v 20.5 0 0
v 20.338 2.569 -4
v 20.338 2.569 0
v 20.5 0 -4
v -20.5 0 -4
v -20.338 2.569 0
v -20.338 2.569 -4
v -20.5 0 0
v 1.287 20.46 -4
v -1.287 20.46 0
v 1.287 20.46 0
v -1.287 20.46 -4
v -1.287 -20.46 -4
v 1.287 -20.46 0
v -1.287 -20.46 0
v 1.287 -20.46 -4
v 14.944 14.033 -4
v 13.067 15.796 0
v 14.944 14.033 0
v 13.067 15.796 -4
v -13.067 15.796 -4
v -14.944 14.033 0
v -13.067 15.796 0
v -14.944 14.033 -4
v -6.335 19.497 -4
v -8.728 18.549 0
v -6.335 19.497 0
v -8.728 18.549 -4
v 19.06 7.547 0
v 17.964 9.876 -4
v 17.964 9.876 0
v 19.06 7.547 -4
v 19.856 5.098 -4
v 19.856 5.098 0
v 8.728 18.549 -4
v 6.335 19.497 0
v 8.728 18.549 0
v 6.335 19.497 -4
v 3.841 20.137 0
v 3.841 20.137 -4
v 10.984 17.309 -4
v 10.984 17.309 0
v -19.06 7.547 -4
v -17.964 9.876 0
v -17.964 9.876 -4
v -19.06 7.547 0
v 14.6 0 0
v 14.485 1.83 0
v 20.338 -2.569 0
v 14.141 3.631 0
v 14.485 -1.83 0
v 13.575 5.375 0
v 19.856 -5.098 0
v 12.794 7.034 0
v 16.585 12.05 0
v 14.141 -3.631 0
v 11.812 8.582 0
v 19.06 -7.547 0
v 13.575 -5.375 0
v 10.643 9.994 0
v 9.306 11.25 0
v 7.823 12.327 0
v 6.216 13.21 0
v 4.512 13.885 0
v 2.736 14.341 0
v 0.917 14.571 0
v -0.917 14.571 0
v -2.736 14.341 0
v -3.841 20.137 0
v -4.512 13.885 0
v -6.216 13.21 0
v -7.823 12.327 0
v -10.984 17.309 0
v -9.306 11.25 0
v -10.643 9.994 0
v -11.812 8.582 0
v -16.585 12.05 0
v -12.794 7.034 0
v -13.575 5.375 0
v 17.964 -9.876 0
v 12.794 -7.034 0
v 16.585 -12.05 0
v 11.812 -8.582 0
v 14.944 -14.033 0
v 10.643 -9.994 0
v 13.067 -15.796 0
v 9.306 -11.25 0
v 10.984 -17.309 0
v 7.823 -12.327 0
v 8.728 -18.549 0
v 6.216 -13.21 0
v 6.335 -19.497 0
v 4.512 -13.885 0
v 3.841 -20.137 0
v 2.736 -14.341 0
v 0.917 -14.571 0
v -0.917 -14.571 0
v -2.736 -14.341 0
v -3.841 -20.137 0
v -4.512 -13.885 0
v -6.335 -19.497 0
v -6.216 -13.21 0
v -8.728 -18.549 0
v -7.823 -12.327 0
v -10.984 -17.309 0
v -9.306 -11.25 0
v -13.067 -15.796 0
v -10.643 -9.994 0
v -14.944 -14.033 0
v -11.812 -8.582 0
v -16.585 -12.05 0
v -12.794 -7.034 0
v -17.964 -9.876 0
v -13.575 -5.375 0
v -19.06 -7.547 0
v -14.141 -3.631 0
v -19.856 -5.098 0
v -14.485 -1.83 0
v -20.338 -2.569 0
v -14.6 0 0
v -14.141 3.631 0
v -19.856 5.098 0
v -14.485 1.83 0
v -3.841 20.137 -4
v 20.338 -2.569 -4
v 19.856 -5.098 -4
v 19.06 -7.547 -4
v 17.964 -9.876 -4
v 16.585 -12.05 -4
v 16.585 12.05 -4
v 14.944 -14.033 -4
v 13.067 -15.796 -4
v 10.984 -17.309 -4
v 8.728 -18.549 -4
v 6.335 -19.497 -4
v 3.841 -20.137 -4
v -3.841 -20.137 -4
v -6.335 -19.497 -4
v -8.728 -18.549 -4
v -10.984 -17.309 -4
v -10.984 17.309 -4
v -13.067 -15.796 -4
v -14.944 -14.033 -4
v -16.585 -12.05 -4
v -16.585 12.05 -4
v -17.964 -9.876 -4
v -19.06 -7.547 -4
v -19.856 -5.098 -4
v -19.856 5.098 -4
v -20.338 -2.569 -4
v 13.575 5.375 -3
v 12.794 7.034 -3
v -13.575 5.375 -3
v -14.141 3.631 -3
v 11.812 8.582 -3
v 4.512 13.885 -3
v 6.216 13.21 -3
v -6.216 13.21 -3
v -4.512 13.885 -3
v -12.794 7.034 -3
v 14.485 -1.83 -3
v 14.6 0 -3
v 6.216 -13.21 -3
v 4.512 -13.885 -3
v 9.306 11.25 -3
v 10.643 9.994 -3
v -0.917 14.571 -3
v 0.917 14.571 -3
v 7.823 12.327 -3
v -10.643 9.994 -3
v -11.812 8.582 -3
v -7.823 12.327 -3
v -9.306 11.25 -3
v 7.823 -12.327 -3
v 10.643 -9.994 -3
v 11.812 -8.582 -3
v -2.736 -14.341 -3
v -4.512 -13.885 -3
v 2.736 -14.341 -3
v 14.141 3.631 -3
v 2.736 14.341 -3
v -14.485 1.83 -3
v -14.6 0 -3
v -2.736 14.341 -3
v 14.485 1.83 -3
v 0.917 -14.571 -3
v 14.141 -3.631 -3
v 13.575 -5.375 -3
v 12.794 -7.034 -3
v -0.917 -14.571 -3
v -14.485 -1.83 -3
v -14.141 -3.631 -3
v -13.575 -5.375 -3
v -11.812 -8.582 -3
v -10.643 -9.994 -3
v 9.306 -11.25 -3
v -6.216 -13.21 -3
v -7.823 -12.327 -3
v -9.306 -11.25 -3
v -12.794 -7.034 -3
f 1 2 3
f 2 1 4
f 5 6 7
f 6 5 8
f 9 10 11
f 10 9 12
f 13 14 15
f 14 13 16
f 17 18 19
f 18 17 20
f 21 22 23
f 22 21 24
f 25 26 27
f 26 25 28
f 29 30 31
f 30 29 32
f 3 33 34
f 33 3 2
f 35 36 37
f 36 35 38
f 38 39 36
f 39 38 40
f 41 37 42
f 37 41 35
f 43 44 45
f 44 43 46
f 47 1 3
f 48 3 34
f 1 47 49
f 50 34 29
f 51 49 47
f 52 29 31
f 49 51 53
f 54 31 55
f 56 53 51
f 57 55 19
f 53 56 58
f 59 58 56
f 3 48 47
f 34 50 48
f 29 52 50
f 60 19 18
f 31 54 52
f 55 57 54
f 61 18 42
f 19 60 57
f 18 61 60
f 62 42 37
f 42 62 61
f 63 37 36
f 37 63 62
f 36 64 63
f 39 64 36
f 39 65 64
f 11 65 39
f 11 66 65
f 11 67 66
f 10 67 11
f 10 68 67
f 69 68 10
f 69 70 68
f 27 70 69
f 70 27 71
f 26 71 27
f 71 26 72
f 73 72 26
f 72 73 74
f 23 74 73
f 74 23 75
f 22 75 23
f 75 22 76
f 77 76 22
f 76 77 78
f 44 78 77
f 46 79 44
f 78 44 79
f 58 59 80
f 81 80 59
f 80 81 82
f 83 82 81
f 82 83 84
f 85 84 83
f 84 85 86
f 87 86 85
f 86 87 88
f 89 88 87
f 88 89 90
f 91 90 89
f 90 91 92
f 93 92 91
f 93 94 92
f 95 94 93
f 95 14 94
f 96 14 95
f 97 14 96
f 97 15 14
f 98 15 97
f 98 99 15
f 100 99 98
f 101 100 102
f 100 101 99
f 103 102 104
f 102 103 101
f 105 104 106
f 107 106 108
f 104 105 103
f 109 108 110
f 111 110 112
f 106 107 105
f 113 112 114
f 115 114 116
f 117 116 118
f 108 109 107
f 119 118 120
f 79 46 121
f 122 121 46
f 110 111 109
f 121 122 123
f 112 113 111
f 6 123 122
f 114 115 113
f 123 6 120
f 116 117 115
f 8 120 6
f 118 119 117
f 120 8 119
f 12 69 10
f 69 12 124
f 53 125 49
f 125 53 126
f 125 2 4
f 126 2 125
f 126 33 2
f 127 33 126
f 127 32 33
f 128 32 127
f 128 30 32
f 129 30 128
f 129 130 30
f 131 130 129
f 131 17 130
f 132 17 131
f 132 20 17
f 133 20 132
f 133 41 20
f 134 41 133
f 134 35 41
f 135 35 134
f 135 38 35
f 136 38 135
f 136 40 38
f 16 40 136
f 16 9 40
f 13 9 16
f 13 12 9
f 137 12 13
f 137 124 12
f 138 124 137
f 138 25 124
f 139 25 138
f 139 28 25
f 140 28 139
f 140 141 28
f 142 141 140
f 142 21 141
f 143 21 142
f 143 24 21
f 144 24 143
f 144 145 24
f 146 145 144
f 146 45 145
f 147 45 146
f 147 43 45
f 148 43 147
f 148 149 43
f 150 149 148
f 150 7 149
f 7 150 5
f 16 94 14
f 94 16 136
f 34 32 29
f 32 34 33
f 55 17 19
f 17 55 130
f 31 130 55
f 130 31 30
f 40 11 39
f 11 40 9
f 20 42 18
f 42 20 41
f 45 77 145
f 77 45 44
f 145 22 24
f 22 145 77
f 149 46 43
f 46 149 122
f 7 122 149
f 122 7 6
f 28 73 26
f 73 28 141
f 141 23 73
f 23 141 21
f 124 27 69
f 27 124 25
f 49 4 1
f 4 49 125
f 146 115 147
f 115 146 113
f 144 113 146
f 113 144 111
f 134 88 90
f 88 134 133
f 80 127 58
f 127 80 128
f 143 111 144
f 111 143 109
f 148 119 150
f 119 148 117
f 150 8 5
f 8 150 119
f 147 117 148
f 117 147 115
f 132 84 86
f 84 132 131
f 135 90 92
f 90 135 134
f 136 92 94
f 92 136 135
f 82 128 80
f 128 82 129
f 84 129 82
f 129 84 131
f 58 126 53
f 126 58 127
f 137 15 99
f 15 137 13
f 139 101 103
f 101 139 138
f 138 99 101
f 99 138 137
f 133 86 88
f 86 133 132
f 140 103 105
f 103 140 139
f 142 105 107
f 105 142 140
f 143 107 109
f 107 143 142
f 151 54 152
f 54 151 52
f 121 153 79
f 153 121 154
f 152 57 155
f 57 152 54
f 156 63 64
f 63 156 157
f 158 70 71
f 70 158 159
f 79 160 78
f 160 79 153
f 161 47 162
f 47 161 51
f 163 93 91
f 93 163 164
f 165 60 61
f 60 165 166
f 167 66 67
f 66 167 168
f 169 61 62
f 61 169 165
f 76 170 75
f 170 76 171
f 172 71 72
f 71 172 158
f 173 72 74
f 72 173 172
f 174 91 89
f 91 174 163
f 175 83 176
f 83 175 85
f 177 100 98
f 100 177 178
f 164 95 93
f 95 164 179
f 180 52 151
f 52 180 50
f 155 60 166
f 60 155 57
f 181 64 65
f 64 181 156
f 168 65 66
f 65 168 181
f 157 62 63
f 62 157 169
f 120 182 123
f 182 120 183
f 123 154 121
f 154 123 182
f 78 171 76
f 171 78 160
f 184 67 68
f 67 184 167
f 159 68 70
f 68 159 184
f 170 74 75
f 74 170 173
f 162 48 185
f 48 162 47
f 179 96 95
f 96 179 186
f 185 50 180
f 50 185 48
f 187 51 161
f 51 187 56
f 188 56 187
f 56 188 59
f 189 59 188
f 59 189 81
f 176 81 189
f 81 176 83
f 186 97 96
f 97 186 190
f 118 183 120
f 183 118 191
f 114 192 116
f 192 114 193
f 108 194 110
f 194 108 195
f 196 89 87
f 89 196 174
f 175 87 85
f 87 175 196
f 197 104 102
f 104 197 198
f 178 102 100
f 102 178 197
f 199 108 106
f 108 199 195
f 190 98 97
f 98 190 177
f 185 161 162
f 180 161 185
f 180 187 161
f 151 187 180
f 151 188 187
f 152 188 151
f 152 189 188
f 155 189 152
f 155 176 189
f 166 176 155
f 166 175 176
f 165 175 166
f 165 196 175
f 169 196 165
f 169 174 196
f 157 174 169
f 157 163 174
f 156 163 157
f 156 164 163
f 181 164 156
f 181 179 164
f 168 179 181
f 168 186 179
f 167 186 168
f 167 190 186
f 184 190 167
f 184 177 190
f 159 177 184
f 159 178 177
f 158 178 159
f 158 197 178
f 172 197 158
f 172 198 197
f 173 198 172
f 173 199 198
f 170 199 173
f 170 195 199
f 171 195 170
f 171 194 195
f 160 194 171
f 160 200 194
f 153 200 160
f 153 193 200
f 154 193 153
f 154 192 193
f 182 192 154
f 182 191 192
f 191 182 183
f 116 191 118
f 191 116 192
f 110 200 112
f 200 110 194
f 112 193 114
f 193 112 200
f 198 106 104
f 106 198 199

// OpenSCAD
$fn = 50;


difference() {
	union() {
		translate(v = [0, 0, -4.0000000000]) {
			cylinder(h = 4, r = 20.5000000000);
		}
	}
	union() {
		#translate(v = [0, 0, -3.0000000000]) {
			cylinder(h = 3, r = 14.6000000000);
		}
	}
}
